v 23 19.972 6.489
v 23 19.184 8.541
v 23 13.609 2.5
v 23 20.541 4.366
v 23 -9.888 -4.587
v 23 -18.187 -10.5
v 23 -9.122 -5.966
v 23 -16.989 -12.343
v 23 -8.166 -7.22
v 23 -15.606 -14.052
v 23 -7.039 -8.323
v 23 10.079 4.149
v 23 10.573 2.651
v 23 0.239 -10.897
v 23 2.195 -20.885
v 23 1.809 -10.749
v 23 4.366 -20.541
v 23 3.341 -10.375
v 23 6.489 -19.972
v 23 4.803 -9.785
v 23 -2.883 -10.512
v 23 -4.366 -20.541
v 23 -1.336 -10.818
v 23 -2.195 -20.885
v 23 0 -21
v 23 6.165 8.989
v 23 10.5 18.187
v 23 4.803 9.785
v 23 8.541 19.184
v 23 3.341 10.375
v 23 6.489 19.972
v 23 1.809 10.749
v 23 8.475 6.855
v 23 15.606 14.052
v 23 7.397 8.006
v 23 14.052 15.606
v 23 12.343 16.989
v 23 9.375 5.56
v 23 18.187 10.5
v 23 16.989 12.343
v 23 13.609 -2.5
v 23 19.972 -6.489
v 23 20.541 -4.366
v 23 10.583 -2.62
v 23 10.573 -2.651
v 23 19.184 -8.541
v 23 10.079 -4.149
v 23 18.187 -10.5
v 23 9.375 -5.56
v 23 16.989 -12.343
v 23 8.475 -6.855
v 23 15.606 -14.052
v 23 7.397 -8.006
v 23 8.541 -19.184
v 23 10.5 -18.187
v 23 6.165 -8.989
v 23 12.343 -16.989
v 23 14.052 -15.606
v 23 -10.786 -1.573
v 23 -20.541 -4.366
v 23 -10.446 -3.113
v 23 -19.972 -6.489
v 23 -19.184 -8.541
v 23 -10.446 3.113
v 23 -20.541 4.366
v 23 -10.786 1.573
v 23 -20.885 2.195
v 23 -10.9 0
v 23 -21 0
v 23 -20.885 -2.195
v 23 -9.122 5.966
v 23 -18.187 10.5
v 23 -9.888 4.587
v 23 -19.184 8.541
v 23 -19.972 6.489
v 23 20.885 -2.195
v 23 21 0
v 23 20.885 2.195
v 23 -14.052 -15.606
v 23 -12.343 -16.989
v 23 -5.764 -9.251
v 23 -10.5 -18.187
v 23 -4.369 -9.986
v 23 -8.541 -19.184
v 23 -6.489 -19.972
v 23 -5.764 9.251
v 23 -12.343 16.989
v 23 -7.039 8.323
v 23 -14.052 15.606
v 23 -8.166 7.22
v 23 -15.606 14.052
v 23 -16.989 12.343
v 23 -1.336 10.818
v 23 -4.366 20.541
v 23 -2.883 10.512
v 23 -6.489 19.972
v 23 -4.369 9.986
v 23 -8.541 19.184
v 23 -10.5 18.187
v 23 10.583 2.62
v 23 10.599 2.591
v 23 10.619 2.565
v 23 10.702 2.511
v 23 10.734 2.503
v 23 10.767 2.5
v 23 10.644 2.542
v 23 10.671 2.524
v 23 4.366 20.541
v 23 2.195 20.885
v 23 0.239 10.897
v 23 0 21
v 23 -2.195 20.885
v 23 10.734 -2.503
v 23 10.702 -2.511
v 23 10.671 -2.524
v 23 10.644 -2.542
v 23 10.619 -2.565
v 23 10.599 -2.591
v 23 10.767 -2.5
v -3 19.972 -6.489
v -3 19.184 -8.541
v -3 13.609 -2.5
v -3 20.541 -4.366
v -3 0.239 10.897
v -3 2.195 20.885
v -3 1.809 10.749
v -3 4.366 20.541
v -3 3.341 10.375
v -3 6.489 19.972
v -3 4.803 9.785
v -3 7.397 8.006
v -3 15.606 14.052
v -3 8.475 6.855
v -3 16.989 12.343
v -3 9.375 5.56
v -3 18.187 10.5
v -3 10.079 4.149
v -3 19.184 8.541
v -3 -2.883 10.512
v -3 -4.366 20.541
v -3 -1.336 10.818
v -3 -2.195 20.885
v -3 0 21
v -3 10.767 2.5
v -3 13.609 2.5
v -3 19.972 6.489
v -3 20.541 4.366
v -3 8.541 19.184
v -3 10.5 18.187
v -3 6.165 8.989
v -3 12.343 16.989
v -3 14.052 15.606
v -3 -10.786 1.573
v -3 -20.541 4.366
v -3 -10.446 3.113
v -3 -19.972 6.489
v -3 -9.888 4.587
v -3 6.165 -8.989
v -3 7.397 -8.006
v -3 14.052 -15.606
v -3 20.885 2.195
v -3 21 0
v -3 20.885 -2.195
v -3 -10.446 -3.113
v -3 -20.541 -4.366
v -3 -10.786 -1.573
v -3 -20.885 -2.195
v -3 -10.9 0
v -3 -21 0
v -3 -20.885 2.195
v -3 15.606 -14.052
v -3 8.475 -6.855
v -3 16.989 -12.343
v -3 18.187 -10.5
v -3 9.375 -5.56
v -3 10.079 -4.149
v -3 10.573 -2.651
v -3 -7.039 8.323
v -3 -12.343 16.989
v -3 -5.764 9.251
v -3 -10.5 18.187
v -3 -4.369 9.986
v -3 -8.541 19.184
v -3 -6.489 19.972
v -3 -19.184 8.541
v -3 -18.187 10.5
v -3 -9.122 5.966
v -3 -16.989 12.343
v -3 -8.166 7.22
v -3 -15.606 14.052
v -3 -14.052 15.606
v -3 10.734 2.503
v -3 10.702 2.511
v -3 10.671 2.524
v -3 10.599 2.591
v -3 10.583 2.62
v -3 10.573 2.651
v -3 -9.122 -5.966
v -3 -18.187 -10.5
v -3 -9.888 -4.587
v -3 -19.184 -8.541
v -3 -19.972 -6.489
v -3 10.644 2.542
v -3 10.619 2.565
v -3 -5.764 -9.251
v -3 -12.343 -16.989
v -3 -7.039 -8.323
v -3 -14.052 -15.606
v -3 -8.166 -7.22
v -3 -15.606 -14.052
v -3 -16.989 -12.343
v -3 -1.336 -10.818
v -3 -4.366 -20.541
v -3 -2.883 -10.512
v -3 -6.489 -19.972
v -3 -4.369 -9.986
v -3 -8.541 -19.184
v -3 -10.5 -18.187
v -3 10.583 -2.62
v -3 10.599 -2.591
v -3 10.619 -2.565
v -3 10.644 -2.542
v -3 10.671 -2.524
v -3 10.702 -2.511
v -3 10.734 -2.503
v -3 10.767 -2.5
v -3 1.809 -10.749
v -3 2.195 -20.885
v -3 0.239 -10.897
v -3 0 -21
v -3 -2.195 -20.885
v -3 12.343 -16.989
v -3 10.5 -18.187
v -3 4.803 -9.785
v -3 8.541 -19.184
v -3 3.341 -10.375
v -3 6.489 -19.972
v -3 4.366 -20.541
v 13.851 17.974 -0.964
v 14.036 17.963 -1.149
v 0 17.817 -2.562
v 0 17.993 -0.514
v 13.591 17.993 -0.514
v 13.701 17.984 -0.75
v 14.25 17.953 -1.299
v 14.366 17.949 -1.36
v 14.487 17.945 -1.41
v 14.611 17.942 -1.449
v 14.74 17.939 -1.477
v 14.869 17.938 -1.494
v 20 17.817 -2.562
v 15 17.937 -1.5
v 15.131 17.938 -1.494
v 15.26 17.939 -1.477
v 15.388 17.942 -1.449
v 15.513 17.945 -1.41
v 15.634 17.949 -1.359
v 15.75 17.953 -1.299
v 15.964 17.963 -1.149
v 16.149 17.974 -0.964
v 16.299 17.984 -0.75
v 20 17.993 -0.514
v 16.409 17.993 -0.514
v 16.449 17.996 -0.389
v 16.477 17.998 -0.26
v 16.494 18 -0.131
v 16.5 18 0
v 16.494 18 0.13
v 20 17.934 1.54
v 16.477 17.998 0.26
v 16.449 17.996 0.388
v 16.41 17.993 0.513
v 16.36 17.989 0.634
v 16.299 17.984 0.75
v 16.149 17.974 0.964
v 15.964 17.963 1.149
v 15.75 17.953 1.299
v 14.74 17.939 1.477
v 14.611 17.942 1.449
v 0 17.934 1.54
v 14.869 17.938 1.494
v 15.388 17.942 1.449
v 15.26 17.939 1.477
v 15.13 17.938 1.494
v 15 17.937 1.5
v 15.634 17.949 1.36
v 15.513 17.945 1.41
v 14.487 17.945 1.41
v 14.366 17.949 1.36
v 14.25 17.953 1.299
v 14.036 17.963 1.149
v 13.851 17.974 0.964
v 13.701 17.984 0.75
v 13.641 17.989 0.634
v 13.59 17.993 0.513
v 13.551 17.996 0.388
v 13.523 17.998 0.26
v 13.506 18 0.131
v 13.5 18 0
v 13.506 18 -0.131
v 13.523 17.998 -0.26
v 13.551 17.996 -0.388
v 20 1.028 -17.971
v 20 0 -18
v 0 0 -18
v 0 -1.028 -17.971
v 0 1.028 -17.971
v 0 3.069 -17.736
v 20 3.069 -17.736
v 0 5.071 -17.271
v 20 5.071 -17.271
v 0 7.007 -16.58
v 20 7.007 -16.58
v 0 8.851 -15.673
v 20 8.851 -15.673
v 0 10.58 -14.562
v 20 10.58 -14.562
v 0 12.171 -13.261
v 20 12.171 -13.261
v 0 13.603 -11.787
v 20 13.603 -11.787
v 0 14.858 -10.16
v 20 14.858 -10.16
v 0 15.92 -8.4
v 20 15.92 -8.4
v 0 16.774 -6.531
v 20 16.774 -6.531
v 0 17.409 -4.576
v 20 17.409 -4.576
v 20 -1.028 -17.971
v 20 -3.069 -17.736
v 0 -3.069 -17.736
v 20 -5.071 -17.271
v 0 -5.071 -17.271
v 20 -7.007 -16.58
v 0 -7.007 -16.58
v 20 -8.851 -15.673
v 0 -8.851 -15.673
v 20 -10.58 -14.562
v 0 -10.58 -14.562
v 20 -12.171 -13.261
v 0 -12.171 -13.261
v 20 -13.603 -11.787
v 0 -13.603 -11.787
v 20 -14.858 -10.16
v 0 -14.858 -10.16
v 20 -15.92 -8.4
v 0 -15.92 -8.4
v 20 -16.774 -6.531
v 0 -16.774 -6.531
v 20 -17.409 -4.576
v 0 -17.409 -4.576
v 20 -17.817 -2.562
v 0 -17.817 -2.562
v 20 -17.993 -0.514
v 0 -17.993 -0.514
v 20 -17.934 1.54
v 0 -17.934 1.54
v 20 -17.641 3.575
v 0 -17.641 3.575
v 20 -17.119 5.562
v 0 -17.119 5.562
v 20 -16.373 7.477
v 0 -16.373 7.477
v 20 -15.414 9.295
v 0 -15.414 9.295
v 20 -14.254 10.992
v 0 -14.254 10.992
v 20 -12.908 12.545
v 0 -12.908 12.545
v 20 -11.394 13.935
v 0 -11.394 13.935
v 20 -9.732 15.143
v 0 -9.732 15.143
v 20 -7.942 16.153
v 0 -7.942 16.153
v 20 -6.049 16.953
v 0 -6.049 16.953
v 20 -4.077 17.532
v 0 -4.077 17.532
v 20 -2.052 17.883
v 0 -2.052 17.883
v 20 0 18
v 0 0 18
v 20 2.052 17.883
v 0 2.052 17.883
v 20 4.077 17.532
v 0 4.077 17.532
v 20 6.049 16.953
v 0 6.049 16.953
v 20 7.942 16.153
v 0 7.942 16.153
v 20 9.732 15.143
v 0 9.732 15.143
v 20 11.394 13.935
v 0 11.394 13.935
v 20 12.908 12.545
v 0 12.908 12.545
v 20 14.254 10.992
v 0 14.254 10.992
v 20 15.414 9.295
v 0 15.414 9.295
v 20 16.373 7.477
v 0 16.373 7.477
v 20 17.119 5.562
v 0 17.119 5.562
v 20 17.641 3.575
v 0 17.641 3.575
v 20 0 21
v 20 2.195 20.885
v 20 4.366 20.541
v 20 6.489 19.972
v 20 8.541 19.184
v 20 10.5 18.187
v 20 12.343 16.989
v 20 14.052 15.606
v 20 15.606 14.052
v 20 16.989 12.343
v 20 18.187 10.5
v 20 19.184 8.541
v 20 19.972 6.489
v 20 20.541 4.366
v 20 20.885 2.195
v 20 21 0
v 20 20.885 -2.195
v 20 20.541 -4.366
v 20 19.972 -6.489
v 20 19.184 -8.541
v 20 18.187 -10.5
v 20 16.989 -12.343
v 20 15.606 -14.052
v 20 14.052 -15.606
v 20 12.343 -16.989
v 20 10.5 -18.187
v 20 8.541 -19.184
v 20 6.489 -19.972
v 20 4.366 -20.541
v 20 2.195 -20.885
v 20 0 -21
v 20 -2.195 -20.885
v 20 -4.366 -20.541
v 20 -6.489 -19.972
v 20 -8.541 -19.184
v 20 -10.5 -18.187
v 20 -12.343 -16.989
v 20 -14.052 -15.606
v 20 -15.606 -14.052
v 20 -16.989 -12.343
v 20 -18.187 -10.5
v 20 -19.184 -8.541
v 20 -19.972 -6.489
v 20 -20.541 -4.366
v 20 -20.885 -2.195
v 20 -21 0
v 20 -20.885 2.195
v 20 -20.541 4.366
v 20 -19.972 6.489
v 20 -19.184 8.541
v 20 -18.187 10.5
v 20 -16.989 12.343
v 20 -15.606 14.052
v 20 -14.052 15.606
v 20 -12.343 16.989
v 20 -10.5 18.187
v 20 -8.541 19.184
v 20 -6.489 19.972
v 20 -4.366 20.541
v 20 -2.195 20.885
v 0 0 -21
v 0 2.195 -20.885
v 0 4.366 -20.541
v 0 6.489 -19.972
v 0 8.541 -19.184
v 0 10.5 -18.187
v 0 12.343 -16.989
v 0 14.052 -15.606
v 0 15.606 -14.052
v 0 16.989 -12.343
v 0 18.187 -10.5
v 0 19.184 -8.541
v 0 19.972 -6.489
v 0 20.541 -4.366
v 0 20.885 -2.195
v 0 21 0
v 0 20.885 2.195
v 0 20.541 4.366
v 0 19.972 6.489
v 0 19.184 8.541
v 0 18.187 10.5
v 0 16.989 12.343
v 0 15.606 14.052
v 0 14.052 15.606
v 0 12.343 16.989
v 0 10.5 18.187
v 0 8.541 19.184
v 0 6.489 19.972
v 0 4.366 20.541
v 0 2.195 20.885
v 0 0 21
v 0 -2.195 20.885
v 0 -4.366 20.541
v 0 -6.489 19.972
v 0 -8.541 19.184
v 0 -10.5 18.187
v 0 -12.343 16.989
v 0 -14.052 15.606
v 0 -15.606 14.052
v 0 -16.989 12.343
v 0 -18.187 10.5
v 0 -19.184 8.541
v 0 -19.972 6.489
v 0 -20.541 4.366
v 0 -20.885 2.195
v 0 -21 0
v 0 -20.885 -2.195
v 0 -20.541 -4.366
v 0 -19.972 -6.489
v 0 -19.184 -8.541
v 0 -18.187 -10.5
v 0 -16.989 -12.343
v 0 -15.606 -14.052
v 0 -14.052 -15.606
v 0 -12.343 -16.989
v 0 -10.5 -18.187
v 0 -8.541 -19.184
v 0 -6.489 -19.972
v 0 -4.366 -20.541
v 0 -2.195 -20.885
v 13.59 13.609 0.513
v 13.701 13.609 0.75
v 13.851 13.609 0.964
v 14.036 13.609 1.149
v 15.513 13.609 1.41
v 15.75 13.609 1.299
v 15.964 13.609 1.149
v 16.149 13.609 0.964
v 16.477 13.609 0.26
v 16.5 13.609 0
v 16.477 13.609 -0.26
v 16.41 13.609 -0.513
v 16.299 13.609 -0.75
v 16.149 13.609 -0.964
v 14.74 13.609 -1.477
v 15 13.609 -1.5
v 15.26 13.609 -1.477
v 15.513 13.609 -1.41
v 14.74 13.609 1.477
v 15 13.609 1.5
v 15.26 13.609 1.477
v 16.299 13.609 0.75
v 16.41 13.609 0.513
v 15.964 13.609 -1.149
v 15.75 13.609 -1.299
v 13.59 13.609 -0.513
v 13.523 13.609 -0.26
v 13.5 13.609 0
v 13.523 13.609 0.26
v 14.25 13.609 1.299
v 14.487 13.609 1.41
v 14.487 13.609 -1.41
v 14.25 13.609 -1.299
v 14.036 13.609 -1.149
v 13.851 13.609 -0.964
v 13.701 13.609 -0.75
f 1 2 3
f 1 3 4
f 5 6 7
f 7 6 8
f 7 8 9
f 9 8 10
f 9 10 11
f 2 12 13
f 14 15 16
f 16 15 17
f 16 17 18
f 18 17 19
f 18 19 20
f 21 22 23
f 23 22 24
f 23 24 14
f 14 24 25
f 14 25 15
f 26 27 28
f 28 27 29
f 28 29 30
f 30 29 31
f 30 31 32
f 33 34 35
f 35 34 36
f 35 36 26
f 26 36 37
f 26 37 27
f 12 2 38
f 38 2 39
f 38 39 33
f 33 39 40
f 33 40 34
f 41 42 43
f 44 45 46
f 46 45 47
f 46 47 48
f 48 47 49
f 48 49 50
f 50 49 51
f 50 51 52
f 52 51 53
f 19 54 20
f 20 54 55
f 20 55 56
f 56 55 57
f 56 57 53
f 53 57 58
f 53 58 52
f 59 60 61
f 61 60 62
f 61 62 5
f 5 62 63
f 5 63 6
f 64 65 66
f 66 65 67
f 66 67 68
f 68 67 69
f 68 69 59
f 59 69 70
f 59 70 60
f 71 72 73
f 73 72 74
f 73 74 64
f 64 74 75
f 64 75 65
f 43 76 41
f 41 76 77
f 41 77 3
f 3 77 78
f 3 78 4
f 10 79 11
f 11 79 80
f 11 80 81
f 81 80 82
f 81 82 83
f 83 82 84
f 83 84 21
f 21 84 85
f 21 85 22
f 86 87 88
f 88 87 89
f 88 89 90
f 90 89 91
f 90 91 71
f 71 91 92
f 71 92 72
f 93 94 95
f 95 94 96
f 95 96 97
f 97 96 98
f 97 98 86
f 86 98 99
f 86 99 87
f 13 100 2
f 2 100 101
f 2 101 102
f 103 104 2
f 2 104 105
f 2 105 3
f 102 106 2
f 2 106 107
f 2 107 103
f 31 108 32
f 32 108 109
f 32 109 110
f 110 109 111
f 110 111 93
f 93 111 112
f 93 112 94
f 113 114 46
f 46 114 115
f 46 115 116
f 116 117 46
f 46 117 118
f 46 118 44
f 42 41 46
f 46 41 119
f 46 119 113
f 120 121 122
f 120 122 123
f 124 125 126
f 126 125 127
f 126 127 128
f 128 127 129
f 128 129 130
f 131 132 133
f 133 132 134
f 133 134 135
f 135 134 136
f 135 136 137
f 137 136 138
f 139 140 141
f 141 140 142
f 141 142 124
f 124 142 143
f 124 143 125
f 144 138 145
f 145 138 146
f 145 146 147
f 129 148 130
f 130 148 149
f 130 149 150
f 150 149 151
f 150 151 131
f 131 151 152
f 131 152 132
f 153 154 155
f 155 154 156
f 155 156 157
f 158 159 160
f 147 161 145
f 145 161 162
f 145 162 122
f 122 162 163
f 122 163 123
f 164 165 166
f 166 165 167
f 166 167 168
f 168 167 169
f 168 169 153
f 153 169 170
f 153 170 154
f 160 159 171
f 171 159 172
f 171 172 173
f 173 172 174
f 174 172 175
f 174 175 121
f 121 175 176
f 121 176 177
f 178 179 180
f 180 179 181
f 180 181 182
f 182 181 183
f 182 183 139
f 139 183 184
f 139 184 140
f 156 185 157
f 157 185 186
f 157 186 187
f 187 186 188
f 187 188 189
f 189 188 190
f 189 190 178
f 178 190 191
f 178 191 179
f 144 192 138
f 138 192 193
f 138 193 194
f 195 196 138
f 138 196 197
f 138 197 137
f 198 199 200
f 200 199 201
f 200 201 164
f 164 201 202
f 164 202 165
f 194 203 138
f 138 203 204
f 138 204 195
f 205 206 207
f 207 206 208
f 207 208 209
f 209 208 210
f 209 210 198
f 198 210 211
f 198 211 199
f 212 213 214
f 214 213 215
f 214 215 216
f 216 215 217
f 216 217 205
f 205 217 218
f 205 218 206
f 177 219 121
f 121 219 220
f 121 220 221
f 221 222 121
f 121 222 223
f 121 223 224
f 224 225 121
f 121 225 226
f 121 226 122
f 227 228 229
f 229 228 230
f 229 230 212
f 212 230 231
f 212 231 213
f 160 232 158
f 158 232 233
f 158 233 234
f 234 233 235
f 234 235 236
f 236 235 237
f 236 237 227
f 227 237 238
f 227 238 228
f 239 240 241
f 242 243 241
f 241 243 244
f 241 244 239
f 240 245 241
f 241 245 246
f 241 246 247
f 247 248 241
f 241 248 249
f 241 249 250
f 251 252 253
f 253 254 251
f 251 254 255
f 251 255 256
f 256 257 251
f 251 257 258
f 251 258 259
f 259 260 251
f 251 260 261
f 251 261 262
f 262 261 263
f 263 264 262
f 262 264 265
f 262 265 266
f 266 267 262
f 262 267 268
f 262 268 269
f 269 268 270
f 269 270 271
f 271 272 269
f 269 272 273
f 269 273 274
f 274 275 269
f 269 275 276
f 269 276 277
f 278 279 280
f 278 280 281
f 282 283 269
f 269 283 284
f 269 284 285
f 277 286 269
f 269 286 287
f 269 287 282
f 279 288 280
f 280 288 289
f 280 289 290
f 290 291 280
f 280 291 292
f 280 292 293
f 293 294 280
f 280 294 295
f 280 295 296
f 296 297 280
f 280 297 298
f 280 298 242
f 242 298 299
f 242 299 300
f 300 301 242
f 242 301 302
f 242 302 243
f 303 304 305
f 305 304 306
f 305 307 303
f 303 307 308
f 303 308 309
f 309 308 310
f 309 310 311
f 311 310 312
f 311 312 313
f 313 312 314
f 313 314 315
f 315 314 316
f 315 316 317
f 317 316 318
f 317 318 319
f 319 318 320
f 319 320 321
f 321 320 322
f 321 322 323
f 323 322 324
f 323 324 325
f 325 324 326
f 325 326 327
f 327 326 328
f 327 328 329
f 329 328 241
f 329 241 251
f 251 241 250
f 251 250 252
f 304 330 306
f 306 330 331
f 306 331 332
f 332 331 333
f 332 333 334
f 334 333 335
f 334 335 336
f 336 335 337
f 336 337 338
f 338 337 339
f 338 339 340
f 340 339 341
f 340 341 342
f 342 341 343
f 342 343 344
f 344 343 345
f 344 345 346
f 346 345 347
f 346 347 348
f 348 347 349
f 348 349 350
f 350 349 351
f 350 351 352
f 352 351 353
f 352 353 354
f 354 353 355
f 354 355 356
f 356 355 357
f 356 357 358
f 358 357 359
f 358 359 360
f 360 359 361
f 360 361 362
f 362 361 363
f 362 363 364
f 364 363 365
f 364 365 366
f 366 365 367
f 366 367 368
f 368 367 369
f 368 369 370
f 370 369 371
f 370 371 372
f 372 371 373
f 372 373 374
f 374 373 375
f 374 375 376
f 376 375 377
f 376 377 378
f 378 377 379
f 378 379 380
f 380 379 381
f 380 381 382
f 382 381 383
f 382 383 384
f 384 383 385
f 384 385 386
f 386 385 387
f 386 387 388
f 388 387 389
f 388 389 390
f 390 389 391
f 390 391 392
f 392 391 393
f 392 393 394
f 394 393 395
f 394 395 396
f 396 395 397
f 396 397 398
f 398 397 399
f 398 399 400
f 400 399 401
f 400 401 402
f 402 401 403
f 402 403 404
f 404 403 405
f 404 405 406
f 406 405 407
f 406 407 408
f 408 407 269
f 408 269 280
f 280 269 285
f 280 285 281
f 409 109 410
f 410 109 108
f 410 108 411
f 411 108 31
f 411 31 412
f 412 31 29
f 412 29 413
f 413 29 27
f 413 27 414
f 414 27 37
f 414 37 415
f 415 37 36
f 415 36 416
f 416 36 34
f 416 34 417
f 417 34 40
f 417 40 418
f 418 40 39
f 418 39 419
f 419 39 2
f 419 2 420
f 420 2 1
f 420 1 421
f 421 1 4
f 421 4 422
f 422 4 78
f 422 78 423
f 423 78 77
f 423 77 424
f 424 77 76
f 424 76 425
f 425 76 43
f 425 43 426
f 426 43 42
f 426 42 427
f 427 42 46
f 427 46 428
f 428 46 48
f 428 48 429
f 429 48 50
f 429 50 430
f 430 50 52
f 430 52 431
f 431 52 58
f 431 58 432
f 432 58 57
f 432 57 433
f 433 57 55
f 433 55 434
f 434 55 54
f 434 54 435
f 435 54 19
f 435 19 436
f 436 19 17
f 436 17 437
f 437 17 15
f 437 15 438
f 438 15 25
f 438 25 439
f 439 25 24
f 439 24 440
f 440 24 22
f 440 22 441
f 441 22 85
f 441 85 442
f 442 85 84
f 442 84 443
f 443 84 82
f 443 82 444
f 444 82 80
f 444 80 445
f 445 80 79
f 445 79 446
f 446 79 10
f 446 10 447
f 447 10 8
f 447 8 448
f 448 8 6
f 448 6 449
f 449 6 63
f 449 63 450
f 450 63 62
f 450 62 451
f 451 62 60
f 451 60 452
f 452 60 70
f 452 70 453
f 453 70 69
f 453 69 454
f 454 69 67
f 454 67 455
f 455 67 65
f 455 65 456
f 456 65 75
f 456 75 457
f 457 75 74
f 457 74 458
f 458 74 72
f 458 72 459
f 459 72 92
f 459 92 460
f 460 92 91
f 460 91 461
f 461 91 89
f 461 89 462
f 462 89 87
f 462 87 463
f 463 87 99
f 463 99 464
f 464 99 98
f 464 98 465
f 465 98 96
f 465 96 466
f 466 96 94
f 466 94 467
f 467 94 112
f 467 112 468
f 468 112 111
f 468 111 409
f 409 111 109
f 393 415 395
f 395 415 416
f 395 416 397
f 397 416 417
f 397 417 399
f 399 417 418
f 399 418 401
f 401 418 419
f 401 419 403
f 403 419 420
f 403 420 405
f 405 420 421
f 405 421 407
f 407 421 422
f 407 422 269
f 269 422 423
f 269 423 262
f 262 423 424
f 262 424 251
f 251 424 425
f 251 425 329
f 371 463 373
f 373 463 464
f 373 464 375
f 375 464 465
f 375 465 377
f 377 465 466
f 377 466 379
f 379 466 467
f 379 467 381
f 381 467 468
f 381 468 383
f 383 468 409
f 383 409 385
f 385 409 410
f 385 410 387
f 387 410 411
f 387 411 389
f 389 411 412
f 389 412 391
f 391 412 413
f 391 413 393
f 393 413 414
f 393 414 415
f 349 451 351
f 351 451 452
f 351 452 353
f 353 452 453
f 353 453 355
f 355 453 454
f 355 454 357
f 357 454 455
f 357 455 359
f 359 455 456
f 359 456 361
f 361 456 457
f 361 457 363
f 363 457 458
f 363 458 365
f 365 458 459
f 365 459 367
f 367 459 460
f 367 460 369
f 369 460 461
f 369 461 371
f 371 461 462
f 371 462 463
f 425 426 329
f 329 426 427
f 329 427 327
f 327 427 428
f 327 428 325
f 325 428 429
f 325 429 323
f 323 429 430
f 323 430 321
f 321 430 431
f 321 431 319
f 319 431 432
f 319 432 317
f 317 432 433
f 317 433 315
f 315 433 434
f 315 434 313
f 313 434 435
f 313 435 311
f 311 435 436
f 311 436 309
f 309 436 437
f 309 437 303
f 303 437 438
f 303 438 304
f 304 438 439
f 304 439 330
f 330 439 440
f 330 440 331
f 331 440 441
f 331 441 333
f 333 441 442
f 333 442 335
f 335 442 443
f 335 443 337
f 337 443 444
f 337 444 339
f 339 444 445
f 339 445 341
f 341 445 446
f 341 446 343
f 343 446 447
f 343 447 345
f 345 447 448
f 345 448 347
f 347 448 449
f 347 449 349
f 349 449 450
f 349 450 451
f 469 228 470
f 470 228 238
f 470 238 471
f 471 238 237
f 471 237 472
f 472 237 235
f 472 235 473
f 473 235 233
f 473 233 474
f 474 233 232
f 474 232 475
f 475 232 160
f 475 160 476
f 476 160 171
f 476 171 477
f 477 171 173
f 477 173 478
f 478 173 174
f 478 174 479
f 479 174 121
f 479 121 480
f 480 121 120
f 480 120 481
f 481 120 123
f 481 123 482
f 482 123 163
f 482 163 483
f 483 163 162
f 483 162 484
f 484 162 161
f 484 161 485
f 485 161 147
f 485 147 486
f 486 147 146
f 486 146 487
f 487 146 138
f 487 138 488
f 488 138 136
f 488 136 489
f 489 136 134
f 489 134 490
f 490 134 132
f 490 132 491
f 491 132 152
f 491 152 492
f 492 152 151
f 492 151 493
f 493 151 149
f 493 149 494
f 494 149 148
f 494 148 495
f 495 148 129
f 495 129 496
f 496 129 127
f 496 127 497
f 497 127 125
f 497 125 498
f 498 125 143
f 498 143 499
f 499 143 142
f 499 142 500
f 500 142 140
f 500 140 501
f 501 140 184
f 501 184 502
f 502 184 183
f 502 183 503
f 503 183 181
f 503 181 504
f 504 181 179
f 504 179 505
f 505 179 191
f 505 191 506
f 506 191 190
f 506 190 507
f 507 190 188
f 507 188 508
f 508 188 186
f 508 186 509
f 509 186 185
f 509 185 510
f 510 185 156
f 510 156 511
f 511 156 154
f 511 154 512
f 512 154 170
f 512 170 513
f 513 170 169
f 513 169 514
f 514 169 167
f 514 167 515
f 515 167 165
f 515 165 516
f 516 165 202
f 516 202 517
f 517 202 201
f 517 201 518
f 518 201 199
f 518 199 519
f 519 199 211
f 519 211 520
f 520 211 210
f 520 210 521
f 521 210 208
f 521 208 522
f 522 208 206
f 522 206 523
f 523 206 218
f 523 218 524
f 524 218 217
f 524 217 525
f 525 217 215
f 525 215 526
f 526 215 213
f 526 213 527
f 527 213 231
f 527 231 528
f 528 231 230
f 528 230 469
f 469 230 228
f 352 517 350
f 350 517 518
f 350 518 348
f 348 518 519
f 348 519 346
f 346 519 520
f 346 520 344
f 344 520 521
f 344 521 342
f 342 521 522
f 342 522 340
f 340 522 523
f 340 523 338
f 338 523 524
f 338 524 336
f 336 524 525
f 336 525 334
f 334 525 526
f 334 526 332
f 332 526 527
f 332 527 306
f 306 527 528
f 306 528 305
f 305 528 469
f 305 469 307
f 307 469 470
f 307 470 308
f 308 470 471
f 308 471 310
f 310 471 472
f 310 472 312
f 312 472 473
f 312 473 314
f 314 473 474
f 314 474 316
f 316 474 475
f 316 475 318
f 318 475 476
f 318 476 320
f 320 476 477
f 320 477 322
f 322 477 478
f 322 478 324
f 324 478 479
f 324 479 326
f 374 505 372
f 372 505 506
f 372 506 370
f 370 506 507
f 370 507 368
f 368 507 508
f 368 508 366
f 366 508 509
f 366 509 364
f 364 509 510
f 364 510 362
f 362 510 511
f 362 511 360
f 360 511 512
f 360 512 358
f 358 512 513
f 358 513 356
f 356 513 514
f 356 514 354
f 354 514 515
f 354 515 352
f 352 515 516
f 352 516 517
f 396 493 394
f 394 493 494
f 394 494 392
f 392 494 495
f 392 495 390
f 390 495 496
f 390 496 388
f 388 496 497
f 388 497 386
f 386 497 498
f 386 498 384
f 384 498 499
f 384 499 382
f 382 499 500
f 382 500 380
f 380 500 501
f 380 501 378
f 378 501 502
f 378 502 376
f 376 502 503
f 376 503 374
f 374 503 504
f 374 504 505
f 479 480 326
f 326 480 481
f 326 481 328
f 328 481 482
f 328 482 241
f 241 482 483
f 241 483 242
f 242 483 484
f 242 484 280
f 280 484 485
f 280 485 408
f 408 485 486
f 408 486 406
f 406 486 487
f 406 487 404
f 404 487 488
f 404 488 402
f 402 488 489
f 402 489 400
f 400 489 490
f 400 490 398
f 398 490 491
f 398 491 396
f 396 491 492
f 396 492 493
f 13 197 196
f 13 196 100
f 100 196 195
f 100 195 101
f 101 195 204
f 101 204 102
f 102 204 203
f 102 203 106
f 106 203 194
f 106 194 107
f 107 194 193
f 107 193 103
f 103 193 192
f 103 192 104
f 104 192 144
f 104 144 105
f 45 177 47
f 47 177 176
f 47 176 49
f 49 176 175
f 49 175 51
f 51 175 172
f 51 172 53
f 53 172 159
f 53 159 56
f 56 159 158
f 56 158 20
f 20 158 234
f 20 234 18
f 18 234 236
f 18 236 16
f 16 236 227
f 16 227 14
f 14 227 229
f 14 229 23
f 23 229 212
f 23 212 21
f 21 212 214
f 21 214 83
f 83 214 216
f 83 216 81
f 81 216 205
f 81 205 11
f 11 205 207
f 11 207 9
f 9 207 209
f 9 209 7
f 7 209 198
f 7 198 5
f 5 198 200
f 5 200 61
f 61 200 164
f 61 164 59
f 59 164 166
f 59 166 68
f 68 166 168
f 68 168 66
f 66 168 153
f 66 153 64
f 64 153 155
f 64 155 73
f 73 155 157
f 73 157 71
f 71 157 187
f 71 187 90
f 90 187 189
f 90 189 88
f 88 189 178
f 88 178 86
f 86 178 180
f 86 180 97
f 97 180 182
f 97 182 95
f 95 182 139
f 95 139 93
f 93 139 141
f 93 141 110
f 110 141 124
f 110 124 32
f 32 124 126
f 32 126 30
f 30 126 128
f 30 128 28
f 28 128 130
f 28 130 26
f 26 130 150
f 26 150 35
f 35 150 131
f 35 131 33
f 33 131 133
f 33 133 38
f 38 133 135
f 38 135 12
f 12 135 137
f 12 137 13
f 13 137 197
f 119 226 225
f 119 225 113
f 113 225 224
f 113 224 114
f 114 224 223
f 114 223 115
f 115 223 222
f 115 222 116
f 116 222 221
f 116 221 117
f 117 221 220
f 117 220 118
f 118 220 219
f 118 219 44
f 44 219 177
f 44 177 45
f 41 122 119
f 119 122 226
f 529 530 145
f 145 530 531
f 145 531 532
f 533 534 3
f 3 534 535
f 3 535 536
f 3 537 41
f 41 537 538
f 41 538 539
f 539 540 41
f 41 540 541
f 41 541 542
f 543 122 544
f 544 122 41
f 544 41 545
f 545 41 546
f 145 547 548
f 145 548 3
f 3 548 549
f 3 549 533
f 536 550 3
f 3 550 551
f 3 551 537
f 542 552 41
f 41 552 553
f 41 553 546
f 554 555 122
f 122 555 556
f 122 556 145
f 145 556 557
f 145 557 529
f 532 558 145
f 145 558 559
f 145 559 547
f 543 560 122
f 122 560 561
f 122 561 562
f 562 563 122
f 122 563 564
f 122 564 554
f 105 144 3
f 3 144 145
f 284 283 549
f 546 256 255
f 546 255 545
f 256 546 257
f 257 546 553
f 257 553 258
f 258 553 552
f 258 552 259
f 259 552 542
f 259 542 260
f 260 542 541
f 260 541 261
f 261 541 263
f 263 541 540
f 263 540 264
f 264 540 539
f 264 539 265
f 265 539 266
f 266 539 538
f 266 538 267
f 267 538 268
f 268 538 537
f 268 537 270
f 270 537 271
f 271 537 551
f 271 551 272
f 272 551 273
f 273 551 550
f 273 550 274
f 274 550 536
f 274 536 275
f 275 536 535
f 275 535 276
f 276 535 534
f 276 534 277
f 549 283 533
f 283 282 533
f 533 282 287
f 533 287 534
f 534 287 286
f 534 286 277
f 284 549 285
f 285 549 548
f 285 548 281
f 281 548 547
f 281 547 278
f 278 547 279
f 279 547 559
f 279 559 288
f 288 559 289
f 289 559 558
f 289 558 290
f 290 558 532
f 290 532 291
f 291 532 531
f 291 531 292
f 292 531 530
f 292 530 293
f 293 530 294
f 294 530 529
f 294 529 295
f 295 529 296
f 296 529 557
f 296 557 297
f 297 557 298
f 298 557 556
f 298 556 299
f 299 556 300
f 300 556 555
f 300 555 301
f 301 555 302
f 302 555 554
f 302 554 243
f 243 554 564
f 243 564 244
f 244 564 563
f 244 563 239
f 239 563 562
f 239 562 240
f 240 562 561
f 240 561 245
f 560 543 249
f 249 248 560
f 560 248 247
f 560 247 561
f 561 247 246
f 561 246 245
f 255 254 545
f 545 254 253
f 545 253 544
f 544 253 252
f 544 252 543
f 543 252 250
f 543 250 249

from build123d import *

# Parameters (mm, degrees)
SKETCH1_R               = 18
BOSS_EXTRUDE1_DEPTH     = 20
SKETCH3_R               = 21
BOSS_EXTRUDE2_DEPTH     = 3
SKETCH4_R               = 21
BOSS_EXTRUDE3_DEPTH     = 3
CUT_EXTRUDE2_DEPTH      = 3
CUT_EXTRUDE2_DEPTH_BACK = 25
SKETCH6_R               = 1.5
CUT_EXTRUDE3_DEPTH      = 20


with BuildPart() as part:
    # Sketch1 → Boss-Extrude1 (new body)
    with BuildSketch(Plane(origin=(0, 0, 0), x_dir=(0, 0, -1), z_dir=(1, 0, 0))):
        Circle(SKETCH1_R)
    extrude(amount=BOSS_EXTRUDE1_DEPTH)

    # Sketch3 → Boss-Extrude2 (add)
    with BuildSketch(Plane(origin=(20, 0, 0), x_dir=(0, 0, -1), z_dir=(1, 0, 0))):
        Circle(SKETCH3_R)
    extrude(amount=BOSS_EXTRUDE2_DEPTH)

    # Sketch4 → Boss-Extrude3 (add)
    with BuildSketch(Plane.ZY):
        Circle(SKETCH4_R)
    extrude(amount=BOSS_EXTRUDE3_DEPTH)

    # Sketch2 → Cut-Extrude2 (cut, two sides)
    with BuildSketch(Plane(origin=(20, 0, 0), x_dir=(0, 0, -1), z_dir=(1, 0, 0))) as cut_extrude2_sk:
        with BuildLine():
            Line((-2.5, 13.609429768), (2.5, 13.609429768))
            Line((2.5, 13.609429768), (2.5, 10.766615067))
            ThreePointArc((2.5, 10.766615067), (2.542314031, 10.64359013), (2.651351351, 10.572622003))
            ThreePointArc((2.651351351, 10.572622003), (0, -10.9), (-2.651351351, 10.572622003))
            ThreePointArc((-2.651351351, 10.572622003), (-2.542314031, 10.64359013), (-2.5, 10.766615067))
            Line((-2.5, 10.766615067), (-2.5, 13.609429768))
        make_face()
    extrude(amount=CUT_EXTRUDE2_DEPTH, mode=Mode.SUBTRACT)
    extrude(cut_extrude2_sk.sketch, amount=-CUT_EXTRUDE2_DEPTH_BACK, mode=Mode.SUBTRACT)

    # Sketch6 → Cut-Extrude3 (cut)
    with BuildSketch(Plane.XZ.offset(-13.609429768)):
        with Locations((15, 0)):
            Circle(SKETCH6_R)
    extrude(amount=-CUT_EXTRUDE3_DEPTH, mode=Mode.SUBTRACT)


solid = part.part
